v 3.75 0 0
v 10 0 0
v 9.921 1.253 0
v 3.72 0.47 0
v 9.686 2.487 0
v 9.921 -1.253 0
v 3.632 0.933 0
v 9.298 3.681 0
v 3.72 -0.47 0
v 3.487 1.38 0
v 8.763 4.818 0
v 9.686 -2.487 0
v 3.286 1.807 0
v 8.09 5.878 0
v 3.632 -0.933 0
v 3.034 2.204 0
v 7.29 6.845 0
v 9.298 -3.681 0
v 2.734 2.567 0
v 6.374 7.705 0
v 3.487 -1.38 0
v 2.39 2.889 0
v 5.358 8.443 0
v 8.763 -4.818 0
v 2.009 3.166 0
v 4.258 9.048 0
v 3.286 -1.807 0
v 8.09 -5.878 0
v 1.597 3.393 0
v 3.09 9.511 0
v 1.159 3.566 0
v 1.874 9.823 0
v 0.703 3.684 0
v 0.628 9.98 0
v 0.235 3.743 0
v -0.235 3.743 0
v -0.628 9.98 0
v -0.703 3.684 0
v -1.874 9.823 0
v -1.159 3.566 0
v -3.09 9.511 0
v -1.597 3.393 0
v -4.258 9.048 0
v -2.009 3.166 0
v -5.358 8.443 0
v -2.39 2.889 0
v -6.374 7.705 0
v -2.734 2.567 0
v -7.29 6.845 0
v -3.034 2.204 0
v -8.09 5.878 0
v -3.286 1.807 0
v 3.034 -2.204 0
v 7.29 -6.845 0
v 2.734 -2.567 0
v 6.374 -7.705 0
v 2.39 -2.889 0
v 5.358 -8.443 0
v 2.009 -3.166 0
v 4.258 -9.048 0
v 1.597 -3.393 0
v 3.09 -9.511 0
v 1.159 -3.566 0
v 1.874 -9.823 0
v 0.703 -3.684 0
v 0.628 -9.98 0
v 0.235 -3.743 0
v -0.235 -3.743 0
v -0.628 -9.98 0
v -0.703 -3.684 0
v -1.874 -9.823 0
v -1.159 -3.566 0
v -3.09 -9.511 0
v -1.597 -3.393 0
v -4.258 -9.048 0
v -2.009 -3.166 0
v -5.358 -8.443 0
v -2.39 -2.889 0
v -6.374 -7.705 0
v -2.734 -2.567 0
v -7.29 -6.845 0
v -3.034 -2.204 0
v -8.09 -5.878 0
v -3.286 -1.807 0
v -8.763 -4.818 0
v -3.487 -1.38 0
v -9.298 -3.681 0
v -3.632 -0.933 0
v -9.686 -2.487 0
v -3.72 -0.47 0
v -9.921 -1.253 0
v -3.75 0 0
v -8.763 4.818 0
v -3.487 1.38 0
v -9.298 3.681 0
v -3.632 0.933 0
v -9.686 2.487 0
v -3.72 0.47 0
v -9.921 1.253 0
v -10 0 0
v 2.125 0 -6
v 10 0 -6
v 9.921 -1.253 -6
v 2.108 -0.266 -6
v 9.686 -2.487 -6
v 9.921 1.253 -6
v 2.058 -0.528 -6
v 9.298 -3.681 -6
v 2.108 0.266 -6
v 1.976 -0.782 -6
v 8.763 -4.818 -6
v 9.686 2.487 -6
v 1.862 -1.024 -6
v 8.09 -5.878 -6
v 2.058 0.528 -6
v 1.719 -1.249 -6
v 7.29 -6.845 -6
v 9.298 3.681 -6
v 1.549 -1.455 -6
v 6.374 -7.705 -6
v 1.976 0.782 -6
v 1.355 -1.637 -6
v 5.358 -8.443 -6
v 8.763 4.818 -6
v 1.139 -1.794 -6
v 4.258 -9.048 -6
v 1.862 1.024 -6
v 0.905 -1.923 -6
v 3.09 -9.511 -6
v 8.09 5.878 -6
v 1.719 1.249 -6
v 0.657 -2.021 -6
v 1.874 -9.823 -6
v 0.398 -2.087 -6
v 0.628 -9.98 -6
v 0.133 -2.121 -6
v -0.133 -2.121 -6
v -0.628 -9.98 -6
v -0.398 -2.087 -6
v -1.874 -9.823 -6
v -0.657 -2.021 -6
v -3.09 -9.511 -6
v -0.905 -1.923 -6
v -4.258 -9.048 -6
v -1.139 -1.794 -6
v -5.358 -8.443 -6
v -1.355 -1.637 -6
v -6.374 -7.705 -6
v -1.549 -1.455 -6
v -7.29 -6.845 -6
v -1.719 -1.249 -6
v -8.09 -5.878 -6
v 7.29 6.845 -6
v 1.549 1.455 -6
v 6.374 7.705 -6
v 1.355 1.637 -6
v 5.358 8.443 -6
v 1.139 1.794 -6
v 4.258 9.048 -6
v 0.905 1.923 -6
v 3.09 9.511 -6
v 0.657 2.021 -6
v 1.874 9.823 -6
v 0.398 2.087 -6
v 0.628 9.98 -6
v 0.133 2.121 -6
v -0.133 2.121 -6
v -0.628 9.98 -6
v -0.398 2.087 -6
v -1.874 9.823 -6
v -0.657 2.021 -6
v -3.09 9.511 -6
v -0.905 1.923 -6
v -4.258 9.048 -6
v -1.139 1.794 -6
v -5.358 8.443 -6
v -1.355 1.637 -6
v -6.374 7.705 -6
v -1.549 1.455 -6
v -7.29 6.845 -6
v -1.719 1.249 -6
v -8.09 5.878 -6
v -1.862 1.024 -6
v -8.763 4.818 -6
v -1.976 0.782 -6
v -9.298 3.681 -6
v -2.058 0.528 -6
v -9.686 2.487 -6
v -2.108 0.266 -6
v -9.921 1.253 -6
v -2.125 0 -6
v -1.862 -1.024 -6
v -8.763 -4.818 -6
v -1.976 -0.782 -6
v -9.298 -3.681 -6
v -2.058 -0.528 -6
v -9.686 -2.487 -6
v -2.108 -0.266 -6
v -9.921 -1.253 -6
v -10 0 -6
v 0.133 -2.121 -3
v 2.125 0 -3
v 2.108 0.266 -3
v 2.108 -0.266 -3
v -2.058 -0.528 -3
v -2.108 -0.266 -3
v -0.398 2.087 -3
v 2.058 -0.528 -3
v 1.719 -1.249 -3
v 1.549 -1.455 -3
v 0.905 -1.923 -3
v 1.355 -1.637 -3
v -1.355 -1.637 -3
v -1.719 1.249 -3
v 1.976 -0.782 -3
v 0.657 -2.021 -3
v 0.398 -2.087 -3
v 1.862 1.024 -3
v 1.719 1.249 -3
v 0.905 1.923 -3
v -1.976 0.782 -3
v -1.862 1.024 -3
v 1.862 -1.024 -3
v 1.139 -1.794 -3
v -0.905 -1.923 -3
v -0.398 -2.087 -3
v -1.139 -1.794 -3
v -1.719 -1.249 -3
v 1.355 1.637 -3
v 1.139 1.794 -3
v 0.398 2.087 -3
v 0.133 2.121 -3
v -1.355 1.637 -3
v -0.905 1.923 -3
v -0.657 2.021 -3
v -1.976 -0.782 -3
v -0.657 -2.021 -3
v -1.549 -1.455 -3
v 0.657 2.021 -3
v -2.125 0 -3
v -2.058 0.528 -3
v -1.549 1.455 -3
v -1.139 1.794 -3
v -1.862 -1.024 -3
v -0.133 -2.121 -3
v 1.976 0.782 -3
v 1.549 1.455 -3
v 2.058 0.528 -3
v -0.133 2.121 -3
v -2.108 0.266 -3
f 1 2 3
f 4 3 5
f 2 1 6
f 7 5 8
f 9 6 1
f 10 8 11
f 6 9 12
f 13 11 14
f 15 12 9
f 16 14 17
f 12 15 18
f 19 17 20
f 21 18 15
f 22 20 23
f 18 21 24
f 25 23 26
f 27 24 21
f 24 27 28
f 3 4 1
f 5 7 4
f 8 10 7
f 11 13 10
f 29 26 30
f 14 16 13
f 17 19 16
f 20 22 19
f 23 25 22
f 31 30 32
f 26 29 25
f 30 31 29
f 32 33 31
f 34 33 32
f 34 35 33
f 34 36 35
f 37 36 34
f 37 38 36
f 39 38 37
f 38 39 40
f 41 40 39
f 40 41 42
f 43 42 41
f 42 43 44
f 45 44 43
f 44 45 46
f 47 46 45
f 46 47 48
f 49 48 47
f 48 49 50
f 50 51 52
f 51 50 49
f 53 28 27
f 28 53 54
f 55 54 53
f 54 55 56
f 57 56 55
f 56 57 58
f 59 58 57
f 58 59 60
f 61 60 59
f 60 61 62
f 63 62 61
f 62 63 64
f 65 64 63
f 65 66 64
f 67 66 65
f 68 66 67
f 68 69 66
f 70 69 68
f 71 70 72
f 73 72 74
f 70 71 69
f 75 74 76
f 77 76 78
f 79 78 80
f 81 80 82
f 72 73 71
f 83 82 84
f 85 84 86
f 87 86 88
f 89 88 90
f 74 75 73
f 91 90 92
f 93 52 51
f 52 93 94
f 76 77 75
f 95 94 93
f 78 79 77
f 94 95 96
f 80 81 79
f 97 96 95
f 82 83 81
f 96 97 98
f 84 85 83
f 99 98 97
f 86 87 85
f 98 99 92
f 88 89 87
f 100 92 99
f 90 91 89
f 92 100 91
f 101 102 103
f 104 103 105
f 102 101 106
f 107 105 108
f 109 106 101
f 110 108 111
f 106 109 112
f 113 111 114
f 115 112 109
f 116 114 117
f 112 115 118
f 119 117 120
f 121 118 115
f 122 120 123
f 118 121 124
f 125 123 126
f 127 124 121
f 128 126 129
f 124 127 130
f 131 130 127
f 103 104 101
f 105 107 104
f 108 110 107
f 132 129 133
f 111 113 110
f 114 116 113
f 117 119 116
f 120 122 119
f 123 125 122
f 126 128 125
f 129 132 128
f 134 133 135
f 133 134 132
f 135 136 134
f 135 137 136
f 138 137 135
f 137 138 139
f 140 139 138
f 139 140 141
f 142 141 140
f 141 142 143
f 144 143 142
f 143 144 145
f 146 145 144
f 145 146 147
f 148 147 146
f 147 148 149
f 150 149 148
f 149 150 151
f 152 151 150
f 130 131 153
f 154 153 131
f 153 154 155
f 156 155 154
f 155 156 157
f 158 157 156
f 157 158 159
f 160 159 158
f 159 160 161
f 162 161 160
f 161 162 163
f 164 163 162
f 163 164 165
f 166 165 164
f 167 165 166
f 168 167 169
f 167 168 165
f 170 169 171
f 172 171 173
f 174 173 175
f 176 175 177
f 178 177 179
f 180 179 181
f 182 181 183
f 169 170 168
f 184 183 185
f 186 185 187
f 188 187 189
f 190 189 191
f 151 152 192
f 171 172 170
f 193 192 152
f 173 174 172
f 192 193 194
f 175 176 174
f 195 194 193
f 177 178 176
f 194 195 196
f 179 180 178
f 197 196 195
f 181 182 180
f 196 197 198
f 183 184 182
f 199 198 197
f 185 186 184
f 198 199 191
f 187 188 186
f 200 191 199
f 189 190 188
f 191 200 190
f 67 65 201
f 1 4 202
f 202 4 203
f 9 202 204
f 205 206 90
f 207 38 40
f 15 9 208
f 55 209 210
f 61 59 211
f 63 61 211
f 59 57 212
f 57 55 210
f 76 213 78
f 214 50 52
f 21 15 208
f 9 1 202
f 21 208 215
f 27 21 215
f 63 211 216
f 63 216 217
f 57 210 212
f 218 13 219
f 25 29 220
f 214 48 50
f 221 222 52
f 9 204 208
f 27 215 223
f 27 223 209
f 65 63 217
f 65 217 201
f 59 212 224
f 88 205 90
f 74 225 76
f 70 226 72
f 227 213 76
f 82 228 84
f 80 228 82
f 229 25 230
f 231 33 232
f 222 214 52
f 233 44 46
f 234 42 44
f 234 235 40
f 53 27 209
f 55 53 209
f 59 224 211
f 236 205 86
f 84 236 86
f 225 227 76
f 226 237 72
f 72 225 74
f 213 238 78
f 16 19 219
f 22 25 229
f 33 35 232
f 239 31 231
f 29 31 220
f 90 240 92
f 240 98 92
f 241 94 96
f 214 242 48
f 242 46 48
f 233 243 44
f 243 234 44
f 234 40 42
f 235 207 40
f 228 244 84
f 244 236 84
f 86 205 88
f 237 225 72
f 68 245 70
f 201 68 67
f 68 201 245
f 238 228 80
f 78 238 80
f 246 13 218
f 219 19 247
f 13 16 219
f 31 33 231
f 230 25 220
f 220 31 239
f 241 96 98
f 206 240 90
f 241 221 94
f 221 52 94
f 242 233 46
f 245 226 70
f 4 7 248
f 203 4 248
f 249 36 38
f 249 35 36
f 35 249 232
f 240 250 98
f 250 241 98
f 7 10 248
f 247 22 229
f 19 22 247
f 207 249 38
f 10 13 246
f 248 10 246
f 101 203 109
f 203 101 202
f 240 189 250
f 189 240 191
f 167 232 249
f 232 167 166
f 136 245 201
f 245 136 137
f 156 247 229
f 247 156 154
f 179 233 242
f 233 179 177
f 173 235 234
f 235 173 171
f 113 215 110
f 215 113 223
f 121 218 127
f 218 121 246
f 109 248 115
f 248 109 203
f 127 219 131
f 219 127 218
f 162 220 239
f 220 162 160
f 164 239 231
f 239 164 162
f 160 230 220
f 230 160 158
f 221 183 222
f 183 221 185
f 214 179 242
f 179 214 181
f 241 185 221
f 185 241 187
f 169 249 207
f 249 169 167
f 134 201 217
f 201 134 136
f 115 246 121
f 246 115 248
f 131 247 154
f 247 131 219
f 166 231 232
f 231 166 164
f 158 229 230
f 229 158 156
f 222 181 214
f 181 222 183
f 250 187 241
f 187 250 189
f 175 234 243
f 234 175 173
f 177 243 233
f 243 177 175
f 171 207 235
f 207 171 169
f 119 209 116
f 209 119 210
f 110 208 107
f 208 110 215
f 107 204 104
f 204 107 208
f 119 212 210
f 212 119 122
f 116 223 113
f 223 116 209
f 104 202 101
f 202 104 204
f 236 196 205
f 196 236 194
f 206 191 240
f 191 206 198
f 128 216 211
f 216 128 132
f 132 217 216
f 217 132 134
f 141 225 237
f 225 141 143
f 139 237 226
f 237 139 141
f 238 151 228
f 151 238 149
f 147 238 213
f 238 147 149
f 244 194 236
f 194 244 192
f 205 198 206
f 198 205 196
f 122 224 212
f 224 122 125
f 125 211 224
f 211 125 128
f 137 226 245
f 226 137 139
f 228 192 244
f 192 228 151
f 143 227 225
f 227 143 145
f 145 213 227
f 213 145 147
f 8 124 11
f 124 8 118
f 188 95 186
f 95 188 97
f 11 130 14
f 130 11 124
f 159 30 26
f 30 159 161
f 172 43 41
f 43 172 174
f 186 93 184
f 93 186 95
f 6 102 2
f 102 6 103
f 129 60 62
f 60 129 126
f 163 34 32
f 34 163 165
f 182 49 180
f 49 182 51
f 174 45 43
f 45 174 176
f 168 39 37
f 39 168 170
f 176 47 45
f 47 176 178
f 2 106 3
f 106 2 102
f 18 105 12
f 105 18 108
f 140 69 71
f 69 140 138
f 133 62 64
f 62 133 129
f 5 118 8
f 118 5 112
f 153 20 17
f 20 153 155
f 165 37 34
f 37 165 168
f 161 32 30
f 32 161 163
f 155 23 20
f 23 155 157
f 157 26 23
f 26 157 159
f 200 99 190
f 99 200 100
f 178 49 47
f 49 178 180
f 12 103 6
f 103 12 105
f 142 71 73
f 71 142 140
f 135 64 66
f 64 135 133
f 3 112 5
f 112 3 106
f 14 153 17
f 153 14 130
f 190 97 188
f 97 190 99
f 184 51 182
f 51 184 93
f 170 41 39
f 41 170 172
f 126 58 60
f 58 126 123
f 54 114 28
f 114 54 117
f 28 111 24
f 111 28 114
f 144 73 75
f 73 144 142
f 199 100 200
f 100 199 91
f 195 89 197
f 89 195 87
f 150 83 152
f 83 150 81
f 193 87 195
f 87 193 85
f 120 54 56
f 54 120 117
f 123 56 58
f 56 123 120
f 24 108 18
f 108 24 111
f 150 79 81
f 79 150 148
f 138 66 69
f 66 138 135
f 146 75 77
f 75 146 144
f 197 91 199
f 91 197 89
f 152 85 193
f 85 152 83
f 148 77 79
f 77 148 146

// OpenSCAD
$fn = 50;


difference() {
	union() {
		translate(v = [0, 0, -6.0000000000]) {
			cylinder(h = 6, r = 10.0000000000);
		}
		cylinder(h = 0, r = 19.0000000000);
	}
	union() {
		translate(v = [0, 0, 0]) {
			rotate(a = [0, 0, 0]) {
				difference() {
					union() {
						#translate(v = [0, 0, -6.0000000000]) {
							cylinder(h = 6, r = 2.0000000000);
						}
						#translate(v = [0, 0, -3]) {
							cylinder(h = 3, r = 10.0000000000, r1 = 2.1250000000, r2 = 3.7500000000);
						}
						#translate(v = [0, 0, -6.0000000000]) {
							cylinder(h = 6, r = 2.1250000000);
						}
						#translate(v = [0, 0, -6.0000000000]) {
							cylinder(h = 6, r = 2.0000000000);
						}
					}
					union();
				}
			}
		}
	}
}
